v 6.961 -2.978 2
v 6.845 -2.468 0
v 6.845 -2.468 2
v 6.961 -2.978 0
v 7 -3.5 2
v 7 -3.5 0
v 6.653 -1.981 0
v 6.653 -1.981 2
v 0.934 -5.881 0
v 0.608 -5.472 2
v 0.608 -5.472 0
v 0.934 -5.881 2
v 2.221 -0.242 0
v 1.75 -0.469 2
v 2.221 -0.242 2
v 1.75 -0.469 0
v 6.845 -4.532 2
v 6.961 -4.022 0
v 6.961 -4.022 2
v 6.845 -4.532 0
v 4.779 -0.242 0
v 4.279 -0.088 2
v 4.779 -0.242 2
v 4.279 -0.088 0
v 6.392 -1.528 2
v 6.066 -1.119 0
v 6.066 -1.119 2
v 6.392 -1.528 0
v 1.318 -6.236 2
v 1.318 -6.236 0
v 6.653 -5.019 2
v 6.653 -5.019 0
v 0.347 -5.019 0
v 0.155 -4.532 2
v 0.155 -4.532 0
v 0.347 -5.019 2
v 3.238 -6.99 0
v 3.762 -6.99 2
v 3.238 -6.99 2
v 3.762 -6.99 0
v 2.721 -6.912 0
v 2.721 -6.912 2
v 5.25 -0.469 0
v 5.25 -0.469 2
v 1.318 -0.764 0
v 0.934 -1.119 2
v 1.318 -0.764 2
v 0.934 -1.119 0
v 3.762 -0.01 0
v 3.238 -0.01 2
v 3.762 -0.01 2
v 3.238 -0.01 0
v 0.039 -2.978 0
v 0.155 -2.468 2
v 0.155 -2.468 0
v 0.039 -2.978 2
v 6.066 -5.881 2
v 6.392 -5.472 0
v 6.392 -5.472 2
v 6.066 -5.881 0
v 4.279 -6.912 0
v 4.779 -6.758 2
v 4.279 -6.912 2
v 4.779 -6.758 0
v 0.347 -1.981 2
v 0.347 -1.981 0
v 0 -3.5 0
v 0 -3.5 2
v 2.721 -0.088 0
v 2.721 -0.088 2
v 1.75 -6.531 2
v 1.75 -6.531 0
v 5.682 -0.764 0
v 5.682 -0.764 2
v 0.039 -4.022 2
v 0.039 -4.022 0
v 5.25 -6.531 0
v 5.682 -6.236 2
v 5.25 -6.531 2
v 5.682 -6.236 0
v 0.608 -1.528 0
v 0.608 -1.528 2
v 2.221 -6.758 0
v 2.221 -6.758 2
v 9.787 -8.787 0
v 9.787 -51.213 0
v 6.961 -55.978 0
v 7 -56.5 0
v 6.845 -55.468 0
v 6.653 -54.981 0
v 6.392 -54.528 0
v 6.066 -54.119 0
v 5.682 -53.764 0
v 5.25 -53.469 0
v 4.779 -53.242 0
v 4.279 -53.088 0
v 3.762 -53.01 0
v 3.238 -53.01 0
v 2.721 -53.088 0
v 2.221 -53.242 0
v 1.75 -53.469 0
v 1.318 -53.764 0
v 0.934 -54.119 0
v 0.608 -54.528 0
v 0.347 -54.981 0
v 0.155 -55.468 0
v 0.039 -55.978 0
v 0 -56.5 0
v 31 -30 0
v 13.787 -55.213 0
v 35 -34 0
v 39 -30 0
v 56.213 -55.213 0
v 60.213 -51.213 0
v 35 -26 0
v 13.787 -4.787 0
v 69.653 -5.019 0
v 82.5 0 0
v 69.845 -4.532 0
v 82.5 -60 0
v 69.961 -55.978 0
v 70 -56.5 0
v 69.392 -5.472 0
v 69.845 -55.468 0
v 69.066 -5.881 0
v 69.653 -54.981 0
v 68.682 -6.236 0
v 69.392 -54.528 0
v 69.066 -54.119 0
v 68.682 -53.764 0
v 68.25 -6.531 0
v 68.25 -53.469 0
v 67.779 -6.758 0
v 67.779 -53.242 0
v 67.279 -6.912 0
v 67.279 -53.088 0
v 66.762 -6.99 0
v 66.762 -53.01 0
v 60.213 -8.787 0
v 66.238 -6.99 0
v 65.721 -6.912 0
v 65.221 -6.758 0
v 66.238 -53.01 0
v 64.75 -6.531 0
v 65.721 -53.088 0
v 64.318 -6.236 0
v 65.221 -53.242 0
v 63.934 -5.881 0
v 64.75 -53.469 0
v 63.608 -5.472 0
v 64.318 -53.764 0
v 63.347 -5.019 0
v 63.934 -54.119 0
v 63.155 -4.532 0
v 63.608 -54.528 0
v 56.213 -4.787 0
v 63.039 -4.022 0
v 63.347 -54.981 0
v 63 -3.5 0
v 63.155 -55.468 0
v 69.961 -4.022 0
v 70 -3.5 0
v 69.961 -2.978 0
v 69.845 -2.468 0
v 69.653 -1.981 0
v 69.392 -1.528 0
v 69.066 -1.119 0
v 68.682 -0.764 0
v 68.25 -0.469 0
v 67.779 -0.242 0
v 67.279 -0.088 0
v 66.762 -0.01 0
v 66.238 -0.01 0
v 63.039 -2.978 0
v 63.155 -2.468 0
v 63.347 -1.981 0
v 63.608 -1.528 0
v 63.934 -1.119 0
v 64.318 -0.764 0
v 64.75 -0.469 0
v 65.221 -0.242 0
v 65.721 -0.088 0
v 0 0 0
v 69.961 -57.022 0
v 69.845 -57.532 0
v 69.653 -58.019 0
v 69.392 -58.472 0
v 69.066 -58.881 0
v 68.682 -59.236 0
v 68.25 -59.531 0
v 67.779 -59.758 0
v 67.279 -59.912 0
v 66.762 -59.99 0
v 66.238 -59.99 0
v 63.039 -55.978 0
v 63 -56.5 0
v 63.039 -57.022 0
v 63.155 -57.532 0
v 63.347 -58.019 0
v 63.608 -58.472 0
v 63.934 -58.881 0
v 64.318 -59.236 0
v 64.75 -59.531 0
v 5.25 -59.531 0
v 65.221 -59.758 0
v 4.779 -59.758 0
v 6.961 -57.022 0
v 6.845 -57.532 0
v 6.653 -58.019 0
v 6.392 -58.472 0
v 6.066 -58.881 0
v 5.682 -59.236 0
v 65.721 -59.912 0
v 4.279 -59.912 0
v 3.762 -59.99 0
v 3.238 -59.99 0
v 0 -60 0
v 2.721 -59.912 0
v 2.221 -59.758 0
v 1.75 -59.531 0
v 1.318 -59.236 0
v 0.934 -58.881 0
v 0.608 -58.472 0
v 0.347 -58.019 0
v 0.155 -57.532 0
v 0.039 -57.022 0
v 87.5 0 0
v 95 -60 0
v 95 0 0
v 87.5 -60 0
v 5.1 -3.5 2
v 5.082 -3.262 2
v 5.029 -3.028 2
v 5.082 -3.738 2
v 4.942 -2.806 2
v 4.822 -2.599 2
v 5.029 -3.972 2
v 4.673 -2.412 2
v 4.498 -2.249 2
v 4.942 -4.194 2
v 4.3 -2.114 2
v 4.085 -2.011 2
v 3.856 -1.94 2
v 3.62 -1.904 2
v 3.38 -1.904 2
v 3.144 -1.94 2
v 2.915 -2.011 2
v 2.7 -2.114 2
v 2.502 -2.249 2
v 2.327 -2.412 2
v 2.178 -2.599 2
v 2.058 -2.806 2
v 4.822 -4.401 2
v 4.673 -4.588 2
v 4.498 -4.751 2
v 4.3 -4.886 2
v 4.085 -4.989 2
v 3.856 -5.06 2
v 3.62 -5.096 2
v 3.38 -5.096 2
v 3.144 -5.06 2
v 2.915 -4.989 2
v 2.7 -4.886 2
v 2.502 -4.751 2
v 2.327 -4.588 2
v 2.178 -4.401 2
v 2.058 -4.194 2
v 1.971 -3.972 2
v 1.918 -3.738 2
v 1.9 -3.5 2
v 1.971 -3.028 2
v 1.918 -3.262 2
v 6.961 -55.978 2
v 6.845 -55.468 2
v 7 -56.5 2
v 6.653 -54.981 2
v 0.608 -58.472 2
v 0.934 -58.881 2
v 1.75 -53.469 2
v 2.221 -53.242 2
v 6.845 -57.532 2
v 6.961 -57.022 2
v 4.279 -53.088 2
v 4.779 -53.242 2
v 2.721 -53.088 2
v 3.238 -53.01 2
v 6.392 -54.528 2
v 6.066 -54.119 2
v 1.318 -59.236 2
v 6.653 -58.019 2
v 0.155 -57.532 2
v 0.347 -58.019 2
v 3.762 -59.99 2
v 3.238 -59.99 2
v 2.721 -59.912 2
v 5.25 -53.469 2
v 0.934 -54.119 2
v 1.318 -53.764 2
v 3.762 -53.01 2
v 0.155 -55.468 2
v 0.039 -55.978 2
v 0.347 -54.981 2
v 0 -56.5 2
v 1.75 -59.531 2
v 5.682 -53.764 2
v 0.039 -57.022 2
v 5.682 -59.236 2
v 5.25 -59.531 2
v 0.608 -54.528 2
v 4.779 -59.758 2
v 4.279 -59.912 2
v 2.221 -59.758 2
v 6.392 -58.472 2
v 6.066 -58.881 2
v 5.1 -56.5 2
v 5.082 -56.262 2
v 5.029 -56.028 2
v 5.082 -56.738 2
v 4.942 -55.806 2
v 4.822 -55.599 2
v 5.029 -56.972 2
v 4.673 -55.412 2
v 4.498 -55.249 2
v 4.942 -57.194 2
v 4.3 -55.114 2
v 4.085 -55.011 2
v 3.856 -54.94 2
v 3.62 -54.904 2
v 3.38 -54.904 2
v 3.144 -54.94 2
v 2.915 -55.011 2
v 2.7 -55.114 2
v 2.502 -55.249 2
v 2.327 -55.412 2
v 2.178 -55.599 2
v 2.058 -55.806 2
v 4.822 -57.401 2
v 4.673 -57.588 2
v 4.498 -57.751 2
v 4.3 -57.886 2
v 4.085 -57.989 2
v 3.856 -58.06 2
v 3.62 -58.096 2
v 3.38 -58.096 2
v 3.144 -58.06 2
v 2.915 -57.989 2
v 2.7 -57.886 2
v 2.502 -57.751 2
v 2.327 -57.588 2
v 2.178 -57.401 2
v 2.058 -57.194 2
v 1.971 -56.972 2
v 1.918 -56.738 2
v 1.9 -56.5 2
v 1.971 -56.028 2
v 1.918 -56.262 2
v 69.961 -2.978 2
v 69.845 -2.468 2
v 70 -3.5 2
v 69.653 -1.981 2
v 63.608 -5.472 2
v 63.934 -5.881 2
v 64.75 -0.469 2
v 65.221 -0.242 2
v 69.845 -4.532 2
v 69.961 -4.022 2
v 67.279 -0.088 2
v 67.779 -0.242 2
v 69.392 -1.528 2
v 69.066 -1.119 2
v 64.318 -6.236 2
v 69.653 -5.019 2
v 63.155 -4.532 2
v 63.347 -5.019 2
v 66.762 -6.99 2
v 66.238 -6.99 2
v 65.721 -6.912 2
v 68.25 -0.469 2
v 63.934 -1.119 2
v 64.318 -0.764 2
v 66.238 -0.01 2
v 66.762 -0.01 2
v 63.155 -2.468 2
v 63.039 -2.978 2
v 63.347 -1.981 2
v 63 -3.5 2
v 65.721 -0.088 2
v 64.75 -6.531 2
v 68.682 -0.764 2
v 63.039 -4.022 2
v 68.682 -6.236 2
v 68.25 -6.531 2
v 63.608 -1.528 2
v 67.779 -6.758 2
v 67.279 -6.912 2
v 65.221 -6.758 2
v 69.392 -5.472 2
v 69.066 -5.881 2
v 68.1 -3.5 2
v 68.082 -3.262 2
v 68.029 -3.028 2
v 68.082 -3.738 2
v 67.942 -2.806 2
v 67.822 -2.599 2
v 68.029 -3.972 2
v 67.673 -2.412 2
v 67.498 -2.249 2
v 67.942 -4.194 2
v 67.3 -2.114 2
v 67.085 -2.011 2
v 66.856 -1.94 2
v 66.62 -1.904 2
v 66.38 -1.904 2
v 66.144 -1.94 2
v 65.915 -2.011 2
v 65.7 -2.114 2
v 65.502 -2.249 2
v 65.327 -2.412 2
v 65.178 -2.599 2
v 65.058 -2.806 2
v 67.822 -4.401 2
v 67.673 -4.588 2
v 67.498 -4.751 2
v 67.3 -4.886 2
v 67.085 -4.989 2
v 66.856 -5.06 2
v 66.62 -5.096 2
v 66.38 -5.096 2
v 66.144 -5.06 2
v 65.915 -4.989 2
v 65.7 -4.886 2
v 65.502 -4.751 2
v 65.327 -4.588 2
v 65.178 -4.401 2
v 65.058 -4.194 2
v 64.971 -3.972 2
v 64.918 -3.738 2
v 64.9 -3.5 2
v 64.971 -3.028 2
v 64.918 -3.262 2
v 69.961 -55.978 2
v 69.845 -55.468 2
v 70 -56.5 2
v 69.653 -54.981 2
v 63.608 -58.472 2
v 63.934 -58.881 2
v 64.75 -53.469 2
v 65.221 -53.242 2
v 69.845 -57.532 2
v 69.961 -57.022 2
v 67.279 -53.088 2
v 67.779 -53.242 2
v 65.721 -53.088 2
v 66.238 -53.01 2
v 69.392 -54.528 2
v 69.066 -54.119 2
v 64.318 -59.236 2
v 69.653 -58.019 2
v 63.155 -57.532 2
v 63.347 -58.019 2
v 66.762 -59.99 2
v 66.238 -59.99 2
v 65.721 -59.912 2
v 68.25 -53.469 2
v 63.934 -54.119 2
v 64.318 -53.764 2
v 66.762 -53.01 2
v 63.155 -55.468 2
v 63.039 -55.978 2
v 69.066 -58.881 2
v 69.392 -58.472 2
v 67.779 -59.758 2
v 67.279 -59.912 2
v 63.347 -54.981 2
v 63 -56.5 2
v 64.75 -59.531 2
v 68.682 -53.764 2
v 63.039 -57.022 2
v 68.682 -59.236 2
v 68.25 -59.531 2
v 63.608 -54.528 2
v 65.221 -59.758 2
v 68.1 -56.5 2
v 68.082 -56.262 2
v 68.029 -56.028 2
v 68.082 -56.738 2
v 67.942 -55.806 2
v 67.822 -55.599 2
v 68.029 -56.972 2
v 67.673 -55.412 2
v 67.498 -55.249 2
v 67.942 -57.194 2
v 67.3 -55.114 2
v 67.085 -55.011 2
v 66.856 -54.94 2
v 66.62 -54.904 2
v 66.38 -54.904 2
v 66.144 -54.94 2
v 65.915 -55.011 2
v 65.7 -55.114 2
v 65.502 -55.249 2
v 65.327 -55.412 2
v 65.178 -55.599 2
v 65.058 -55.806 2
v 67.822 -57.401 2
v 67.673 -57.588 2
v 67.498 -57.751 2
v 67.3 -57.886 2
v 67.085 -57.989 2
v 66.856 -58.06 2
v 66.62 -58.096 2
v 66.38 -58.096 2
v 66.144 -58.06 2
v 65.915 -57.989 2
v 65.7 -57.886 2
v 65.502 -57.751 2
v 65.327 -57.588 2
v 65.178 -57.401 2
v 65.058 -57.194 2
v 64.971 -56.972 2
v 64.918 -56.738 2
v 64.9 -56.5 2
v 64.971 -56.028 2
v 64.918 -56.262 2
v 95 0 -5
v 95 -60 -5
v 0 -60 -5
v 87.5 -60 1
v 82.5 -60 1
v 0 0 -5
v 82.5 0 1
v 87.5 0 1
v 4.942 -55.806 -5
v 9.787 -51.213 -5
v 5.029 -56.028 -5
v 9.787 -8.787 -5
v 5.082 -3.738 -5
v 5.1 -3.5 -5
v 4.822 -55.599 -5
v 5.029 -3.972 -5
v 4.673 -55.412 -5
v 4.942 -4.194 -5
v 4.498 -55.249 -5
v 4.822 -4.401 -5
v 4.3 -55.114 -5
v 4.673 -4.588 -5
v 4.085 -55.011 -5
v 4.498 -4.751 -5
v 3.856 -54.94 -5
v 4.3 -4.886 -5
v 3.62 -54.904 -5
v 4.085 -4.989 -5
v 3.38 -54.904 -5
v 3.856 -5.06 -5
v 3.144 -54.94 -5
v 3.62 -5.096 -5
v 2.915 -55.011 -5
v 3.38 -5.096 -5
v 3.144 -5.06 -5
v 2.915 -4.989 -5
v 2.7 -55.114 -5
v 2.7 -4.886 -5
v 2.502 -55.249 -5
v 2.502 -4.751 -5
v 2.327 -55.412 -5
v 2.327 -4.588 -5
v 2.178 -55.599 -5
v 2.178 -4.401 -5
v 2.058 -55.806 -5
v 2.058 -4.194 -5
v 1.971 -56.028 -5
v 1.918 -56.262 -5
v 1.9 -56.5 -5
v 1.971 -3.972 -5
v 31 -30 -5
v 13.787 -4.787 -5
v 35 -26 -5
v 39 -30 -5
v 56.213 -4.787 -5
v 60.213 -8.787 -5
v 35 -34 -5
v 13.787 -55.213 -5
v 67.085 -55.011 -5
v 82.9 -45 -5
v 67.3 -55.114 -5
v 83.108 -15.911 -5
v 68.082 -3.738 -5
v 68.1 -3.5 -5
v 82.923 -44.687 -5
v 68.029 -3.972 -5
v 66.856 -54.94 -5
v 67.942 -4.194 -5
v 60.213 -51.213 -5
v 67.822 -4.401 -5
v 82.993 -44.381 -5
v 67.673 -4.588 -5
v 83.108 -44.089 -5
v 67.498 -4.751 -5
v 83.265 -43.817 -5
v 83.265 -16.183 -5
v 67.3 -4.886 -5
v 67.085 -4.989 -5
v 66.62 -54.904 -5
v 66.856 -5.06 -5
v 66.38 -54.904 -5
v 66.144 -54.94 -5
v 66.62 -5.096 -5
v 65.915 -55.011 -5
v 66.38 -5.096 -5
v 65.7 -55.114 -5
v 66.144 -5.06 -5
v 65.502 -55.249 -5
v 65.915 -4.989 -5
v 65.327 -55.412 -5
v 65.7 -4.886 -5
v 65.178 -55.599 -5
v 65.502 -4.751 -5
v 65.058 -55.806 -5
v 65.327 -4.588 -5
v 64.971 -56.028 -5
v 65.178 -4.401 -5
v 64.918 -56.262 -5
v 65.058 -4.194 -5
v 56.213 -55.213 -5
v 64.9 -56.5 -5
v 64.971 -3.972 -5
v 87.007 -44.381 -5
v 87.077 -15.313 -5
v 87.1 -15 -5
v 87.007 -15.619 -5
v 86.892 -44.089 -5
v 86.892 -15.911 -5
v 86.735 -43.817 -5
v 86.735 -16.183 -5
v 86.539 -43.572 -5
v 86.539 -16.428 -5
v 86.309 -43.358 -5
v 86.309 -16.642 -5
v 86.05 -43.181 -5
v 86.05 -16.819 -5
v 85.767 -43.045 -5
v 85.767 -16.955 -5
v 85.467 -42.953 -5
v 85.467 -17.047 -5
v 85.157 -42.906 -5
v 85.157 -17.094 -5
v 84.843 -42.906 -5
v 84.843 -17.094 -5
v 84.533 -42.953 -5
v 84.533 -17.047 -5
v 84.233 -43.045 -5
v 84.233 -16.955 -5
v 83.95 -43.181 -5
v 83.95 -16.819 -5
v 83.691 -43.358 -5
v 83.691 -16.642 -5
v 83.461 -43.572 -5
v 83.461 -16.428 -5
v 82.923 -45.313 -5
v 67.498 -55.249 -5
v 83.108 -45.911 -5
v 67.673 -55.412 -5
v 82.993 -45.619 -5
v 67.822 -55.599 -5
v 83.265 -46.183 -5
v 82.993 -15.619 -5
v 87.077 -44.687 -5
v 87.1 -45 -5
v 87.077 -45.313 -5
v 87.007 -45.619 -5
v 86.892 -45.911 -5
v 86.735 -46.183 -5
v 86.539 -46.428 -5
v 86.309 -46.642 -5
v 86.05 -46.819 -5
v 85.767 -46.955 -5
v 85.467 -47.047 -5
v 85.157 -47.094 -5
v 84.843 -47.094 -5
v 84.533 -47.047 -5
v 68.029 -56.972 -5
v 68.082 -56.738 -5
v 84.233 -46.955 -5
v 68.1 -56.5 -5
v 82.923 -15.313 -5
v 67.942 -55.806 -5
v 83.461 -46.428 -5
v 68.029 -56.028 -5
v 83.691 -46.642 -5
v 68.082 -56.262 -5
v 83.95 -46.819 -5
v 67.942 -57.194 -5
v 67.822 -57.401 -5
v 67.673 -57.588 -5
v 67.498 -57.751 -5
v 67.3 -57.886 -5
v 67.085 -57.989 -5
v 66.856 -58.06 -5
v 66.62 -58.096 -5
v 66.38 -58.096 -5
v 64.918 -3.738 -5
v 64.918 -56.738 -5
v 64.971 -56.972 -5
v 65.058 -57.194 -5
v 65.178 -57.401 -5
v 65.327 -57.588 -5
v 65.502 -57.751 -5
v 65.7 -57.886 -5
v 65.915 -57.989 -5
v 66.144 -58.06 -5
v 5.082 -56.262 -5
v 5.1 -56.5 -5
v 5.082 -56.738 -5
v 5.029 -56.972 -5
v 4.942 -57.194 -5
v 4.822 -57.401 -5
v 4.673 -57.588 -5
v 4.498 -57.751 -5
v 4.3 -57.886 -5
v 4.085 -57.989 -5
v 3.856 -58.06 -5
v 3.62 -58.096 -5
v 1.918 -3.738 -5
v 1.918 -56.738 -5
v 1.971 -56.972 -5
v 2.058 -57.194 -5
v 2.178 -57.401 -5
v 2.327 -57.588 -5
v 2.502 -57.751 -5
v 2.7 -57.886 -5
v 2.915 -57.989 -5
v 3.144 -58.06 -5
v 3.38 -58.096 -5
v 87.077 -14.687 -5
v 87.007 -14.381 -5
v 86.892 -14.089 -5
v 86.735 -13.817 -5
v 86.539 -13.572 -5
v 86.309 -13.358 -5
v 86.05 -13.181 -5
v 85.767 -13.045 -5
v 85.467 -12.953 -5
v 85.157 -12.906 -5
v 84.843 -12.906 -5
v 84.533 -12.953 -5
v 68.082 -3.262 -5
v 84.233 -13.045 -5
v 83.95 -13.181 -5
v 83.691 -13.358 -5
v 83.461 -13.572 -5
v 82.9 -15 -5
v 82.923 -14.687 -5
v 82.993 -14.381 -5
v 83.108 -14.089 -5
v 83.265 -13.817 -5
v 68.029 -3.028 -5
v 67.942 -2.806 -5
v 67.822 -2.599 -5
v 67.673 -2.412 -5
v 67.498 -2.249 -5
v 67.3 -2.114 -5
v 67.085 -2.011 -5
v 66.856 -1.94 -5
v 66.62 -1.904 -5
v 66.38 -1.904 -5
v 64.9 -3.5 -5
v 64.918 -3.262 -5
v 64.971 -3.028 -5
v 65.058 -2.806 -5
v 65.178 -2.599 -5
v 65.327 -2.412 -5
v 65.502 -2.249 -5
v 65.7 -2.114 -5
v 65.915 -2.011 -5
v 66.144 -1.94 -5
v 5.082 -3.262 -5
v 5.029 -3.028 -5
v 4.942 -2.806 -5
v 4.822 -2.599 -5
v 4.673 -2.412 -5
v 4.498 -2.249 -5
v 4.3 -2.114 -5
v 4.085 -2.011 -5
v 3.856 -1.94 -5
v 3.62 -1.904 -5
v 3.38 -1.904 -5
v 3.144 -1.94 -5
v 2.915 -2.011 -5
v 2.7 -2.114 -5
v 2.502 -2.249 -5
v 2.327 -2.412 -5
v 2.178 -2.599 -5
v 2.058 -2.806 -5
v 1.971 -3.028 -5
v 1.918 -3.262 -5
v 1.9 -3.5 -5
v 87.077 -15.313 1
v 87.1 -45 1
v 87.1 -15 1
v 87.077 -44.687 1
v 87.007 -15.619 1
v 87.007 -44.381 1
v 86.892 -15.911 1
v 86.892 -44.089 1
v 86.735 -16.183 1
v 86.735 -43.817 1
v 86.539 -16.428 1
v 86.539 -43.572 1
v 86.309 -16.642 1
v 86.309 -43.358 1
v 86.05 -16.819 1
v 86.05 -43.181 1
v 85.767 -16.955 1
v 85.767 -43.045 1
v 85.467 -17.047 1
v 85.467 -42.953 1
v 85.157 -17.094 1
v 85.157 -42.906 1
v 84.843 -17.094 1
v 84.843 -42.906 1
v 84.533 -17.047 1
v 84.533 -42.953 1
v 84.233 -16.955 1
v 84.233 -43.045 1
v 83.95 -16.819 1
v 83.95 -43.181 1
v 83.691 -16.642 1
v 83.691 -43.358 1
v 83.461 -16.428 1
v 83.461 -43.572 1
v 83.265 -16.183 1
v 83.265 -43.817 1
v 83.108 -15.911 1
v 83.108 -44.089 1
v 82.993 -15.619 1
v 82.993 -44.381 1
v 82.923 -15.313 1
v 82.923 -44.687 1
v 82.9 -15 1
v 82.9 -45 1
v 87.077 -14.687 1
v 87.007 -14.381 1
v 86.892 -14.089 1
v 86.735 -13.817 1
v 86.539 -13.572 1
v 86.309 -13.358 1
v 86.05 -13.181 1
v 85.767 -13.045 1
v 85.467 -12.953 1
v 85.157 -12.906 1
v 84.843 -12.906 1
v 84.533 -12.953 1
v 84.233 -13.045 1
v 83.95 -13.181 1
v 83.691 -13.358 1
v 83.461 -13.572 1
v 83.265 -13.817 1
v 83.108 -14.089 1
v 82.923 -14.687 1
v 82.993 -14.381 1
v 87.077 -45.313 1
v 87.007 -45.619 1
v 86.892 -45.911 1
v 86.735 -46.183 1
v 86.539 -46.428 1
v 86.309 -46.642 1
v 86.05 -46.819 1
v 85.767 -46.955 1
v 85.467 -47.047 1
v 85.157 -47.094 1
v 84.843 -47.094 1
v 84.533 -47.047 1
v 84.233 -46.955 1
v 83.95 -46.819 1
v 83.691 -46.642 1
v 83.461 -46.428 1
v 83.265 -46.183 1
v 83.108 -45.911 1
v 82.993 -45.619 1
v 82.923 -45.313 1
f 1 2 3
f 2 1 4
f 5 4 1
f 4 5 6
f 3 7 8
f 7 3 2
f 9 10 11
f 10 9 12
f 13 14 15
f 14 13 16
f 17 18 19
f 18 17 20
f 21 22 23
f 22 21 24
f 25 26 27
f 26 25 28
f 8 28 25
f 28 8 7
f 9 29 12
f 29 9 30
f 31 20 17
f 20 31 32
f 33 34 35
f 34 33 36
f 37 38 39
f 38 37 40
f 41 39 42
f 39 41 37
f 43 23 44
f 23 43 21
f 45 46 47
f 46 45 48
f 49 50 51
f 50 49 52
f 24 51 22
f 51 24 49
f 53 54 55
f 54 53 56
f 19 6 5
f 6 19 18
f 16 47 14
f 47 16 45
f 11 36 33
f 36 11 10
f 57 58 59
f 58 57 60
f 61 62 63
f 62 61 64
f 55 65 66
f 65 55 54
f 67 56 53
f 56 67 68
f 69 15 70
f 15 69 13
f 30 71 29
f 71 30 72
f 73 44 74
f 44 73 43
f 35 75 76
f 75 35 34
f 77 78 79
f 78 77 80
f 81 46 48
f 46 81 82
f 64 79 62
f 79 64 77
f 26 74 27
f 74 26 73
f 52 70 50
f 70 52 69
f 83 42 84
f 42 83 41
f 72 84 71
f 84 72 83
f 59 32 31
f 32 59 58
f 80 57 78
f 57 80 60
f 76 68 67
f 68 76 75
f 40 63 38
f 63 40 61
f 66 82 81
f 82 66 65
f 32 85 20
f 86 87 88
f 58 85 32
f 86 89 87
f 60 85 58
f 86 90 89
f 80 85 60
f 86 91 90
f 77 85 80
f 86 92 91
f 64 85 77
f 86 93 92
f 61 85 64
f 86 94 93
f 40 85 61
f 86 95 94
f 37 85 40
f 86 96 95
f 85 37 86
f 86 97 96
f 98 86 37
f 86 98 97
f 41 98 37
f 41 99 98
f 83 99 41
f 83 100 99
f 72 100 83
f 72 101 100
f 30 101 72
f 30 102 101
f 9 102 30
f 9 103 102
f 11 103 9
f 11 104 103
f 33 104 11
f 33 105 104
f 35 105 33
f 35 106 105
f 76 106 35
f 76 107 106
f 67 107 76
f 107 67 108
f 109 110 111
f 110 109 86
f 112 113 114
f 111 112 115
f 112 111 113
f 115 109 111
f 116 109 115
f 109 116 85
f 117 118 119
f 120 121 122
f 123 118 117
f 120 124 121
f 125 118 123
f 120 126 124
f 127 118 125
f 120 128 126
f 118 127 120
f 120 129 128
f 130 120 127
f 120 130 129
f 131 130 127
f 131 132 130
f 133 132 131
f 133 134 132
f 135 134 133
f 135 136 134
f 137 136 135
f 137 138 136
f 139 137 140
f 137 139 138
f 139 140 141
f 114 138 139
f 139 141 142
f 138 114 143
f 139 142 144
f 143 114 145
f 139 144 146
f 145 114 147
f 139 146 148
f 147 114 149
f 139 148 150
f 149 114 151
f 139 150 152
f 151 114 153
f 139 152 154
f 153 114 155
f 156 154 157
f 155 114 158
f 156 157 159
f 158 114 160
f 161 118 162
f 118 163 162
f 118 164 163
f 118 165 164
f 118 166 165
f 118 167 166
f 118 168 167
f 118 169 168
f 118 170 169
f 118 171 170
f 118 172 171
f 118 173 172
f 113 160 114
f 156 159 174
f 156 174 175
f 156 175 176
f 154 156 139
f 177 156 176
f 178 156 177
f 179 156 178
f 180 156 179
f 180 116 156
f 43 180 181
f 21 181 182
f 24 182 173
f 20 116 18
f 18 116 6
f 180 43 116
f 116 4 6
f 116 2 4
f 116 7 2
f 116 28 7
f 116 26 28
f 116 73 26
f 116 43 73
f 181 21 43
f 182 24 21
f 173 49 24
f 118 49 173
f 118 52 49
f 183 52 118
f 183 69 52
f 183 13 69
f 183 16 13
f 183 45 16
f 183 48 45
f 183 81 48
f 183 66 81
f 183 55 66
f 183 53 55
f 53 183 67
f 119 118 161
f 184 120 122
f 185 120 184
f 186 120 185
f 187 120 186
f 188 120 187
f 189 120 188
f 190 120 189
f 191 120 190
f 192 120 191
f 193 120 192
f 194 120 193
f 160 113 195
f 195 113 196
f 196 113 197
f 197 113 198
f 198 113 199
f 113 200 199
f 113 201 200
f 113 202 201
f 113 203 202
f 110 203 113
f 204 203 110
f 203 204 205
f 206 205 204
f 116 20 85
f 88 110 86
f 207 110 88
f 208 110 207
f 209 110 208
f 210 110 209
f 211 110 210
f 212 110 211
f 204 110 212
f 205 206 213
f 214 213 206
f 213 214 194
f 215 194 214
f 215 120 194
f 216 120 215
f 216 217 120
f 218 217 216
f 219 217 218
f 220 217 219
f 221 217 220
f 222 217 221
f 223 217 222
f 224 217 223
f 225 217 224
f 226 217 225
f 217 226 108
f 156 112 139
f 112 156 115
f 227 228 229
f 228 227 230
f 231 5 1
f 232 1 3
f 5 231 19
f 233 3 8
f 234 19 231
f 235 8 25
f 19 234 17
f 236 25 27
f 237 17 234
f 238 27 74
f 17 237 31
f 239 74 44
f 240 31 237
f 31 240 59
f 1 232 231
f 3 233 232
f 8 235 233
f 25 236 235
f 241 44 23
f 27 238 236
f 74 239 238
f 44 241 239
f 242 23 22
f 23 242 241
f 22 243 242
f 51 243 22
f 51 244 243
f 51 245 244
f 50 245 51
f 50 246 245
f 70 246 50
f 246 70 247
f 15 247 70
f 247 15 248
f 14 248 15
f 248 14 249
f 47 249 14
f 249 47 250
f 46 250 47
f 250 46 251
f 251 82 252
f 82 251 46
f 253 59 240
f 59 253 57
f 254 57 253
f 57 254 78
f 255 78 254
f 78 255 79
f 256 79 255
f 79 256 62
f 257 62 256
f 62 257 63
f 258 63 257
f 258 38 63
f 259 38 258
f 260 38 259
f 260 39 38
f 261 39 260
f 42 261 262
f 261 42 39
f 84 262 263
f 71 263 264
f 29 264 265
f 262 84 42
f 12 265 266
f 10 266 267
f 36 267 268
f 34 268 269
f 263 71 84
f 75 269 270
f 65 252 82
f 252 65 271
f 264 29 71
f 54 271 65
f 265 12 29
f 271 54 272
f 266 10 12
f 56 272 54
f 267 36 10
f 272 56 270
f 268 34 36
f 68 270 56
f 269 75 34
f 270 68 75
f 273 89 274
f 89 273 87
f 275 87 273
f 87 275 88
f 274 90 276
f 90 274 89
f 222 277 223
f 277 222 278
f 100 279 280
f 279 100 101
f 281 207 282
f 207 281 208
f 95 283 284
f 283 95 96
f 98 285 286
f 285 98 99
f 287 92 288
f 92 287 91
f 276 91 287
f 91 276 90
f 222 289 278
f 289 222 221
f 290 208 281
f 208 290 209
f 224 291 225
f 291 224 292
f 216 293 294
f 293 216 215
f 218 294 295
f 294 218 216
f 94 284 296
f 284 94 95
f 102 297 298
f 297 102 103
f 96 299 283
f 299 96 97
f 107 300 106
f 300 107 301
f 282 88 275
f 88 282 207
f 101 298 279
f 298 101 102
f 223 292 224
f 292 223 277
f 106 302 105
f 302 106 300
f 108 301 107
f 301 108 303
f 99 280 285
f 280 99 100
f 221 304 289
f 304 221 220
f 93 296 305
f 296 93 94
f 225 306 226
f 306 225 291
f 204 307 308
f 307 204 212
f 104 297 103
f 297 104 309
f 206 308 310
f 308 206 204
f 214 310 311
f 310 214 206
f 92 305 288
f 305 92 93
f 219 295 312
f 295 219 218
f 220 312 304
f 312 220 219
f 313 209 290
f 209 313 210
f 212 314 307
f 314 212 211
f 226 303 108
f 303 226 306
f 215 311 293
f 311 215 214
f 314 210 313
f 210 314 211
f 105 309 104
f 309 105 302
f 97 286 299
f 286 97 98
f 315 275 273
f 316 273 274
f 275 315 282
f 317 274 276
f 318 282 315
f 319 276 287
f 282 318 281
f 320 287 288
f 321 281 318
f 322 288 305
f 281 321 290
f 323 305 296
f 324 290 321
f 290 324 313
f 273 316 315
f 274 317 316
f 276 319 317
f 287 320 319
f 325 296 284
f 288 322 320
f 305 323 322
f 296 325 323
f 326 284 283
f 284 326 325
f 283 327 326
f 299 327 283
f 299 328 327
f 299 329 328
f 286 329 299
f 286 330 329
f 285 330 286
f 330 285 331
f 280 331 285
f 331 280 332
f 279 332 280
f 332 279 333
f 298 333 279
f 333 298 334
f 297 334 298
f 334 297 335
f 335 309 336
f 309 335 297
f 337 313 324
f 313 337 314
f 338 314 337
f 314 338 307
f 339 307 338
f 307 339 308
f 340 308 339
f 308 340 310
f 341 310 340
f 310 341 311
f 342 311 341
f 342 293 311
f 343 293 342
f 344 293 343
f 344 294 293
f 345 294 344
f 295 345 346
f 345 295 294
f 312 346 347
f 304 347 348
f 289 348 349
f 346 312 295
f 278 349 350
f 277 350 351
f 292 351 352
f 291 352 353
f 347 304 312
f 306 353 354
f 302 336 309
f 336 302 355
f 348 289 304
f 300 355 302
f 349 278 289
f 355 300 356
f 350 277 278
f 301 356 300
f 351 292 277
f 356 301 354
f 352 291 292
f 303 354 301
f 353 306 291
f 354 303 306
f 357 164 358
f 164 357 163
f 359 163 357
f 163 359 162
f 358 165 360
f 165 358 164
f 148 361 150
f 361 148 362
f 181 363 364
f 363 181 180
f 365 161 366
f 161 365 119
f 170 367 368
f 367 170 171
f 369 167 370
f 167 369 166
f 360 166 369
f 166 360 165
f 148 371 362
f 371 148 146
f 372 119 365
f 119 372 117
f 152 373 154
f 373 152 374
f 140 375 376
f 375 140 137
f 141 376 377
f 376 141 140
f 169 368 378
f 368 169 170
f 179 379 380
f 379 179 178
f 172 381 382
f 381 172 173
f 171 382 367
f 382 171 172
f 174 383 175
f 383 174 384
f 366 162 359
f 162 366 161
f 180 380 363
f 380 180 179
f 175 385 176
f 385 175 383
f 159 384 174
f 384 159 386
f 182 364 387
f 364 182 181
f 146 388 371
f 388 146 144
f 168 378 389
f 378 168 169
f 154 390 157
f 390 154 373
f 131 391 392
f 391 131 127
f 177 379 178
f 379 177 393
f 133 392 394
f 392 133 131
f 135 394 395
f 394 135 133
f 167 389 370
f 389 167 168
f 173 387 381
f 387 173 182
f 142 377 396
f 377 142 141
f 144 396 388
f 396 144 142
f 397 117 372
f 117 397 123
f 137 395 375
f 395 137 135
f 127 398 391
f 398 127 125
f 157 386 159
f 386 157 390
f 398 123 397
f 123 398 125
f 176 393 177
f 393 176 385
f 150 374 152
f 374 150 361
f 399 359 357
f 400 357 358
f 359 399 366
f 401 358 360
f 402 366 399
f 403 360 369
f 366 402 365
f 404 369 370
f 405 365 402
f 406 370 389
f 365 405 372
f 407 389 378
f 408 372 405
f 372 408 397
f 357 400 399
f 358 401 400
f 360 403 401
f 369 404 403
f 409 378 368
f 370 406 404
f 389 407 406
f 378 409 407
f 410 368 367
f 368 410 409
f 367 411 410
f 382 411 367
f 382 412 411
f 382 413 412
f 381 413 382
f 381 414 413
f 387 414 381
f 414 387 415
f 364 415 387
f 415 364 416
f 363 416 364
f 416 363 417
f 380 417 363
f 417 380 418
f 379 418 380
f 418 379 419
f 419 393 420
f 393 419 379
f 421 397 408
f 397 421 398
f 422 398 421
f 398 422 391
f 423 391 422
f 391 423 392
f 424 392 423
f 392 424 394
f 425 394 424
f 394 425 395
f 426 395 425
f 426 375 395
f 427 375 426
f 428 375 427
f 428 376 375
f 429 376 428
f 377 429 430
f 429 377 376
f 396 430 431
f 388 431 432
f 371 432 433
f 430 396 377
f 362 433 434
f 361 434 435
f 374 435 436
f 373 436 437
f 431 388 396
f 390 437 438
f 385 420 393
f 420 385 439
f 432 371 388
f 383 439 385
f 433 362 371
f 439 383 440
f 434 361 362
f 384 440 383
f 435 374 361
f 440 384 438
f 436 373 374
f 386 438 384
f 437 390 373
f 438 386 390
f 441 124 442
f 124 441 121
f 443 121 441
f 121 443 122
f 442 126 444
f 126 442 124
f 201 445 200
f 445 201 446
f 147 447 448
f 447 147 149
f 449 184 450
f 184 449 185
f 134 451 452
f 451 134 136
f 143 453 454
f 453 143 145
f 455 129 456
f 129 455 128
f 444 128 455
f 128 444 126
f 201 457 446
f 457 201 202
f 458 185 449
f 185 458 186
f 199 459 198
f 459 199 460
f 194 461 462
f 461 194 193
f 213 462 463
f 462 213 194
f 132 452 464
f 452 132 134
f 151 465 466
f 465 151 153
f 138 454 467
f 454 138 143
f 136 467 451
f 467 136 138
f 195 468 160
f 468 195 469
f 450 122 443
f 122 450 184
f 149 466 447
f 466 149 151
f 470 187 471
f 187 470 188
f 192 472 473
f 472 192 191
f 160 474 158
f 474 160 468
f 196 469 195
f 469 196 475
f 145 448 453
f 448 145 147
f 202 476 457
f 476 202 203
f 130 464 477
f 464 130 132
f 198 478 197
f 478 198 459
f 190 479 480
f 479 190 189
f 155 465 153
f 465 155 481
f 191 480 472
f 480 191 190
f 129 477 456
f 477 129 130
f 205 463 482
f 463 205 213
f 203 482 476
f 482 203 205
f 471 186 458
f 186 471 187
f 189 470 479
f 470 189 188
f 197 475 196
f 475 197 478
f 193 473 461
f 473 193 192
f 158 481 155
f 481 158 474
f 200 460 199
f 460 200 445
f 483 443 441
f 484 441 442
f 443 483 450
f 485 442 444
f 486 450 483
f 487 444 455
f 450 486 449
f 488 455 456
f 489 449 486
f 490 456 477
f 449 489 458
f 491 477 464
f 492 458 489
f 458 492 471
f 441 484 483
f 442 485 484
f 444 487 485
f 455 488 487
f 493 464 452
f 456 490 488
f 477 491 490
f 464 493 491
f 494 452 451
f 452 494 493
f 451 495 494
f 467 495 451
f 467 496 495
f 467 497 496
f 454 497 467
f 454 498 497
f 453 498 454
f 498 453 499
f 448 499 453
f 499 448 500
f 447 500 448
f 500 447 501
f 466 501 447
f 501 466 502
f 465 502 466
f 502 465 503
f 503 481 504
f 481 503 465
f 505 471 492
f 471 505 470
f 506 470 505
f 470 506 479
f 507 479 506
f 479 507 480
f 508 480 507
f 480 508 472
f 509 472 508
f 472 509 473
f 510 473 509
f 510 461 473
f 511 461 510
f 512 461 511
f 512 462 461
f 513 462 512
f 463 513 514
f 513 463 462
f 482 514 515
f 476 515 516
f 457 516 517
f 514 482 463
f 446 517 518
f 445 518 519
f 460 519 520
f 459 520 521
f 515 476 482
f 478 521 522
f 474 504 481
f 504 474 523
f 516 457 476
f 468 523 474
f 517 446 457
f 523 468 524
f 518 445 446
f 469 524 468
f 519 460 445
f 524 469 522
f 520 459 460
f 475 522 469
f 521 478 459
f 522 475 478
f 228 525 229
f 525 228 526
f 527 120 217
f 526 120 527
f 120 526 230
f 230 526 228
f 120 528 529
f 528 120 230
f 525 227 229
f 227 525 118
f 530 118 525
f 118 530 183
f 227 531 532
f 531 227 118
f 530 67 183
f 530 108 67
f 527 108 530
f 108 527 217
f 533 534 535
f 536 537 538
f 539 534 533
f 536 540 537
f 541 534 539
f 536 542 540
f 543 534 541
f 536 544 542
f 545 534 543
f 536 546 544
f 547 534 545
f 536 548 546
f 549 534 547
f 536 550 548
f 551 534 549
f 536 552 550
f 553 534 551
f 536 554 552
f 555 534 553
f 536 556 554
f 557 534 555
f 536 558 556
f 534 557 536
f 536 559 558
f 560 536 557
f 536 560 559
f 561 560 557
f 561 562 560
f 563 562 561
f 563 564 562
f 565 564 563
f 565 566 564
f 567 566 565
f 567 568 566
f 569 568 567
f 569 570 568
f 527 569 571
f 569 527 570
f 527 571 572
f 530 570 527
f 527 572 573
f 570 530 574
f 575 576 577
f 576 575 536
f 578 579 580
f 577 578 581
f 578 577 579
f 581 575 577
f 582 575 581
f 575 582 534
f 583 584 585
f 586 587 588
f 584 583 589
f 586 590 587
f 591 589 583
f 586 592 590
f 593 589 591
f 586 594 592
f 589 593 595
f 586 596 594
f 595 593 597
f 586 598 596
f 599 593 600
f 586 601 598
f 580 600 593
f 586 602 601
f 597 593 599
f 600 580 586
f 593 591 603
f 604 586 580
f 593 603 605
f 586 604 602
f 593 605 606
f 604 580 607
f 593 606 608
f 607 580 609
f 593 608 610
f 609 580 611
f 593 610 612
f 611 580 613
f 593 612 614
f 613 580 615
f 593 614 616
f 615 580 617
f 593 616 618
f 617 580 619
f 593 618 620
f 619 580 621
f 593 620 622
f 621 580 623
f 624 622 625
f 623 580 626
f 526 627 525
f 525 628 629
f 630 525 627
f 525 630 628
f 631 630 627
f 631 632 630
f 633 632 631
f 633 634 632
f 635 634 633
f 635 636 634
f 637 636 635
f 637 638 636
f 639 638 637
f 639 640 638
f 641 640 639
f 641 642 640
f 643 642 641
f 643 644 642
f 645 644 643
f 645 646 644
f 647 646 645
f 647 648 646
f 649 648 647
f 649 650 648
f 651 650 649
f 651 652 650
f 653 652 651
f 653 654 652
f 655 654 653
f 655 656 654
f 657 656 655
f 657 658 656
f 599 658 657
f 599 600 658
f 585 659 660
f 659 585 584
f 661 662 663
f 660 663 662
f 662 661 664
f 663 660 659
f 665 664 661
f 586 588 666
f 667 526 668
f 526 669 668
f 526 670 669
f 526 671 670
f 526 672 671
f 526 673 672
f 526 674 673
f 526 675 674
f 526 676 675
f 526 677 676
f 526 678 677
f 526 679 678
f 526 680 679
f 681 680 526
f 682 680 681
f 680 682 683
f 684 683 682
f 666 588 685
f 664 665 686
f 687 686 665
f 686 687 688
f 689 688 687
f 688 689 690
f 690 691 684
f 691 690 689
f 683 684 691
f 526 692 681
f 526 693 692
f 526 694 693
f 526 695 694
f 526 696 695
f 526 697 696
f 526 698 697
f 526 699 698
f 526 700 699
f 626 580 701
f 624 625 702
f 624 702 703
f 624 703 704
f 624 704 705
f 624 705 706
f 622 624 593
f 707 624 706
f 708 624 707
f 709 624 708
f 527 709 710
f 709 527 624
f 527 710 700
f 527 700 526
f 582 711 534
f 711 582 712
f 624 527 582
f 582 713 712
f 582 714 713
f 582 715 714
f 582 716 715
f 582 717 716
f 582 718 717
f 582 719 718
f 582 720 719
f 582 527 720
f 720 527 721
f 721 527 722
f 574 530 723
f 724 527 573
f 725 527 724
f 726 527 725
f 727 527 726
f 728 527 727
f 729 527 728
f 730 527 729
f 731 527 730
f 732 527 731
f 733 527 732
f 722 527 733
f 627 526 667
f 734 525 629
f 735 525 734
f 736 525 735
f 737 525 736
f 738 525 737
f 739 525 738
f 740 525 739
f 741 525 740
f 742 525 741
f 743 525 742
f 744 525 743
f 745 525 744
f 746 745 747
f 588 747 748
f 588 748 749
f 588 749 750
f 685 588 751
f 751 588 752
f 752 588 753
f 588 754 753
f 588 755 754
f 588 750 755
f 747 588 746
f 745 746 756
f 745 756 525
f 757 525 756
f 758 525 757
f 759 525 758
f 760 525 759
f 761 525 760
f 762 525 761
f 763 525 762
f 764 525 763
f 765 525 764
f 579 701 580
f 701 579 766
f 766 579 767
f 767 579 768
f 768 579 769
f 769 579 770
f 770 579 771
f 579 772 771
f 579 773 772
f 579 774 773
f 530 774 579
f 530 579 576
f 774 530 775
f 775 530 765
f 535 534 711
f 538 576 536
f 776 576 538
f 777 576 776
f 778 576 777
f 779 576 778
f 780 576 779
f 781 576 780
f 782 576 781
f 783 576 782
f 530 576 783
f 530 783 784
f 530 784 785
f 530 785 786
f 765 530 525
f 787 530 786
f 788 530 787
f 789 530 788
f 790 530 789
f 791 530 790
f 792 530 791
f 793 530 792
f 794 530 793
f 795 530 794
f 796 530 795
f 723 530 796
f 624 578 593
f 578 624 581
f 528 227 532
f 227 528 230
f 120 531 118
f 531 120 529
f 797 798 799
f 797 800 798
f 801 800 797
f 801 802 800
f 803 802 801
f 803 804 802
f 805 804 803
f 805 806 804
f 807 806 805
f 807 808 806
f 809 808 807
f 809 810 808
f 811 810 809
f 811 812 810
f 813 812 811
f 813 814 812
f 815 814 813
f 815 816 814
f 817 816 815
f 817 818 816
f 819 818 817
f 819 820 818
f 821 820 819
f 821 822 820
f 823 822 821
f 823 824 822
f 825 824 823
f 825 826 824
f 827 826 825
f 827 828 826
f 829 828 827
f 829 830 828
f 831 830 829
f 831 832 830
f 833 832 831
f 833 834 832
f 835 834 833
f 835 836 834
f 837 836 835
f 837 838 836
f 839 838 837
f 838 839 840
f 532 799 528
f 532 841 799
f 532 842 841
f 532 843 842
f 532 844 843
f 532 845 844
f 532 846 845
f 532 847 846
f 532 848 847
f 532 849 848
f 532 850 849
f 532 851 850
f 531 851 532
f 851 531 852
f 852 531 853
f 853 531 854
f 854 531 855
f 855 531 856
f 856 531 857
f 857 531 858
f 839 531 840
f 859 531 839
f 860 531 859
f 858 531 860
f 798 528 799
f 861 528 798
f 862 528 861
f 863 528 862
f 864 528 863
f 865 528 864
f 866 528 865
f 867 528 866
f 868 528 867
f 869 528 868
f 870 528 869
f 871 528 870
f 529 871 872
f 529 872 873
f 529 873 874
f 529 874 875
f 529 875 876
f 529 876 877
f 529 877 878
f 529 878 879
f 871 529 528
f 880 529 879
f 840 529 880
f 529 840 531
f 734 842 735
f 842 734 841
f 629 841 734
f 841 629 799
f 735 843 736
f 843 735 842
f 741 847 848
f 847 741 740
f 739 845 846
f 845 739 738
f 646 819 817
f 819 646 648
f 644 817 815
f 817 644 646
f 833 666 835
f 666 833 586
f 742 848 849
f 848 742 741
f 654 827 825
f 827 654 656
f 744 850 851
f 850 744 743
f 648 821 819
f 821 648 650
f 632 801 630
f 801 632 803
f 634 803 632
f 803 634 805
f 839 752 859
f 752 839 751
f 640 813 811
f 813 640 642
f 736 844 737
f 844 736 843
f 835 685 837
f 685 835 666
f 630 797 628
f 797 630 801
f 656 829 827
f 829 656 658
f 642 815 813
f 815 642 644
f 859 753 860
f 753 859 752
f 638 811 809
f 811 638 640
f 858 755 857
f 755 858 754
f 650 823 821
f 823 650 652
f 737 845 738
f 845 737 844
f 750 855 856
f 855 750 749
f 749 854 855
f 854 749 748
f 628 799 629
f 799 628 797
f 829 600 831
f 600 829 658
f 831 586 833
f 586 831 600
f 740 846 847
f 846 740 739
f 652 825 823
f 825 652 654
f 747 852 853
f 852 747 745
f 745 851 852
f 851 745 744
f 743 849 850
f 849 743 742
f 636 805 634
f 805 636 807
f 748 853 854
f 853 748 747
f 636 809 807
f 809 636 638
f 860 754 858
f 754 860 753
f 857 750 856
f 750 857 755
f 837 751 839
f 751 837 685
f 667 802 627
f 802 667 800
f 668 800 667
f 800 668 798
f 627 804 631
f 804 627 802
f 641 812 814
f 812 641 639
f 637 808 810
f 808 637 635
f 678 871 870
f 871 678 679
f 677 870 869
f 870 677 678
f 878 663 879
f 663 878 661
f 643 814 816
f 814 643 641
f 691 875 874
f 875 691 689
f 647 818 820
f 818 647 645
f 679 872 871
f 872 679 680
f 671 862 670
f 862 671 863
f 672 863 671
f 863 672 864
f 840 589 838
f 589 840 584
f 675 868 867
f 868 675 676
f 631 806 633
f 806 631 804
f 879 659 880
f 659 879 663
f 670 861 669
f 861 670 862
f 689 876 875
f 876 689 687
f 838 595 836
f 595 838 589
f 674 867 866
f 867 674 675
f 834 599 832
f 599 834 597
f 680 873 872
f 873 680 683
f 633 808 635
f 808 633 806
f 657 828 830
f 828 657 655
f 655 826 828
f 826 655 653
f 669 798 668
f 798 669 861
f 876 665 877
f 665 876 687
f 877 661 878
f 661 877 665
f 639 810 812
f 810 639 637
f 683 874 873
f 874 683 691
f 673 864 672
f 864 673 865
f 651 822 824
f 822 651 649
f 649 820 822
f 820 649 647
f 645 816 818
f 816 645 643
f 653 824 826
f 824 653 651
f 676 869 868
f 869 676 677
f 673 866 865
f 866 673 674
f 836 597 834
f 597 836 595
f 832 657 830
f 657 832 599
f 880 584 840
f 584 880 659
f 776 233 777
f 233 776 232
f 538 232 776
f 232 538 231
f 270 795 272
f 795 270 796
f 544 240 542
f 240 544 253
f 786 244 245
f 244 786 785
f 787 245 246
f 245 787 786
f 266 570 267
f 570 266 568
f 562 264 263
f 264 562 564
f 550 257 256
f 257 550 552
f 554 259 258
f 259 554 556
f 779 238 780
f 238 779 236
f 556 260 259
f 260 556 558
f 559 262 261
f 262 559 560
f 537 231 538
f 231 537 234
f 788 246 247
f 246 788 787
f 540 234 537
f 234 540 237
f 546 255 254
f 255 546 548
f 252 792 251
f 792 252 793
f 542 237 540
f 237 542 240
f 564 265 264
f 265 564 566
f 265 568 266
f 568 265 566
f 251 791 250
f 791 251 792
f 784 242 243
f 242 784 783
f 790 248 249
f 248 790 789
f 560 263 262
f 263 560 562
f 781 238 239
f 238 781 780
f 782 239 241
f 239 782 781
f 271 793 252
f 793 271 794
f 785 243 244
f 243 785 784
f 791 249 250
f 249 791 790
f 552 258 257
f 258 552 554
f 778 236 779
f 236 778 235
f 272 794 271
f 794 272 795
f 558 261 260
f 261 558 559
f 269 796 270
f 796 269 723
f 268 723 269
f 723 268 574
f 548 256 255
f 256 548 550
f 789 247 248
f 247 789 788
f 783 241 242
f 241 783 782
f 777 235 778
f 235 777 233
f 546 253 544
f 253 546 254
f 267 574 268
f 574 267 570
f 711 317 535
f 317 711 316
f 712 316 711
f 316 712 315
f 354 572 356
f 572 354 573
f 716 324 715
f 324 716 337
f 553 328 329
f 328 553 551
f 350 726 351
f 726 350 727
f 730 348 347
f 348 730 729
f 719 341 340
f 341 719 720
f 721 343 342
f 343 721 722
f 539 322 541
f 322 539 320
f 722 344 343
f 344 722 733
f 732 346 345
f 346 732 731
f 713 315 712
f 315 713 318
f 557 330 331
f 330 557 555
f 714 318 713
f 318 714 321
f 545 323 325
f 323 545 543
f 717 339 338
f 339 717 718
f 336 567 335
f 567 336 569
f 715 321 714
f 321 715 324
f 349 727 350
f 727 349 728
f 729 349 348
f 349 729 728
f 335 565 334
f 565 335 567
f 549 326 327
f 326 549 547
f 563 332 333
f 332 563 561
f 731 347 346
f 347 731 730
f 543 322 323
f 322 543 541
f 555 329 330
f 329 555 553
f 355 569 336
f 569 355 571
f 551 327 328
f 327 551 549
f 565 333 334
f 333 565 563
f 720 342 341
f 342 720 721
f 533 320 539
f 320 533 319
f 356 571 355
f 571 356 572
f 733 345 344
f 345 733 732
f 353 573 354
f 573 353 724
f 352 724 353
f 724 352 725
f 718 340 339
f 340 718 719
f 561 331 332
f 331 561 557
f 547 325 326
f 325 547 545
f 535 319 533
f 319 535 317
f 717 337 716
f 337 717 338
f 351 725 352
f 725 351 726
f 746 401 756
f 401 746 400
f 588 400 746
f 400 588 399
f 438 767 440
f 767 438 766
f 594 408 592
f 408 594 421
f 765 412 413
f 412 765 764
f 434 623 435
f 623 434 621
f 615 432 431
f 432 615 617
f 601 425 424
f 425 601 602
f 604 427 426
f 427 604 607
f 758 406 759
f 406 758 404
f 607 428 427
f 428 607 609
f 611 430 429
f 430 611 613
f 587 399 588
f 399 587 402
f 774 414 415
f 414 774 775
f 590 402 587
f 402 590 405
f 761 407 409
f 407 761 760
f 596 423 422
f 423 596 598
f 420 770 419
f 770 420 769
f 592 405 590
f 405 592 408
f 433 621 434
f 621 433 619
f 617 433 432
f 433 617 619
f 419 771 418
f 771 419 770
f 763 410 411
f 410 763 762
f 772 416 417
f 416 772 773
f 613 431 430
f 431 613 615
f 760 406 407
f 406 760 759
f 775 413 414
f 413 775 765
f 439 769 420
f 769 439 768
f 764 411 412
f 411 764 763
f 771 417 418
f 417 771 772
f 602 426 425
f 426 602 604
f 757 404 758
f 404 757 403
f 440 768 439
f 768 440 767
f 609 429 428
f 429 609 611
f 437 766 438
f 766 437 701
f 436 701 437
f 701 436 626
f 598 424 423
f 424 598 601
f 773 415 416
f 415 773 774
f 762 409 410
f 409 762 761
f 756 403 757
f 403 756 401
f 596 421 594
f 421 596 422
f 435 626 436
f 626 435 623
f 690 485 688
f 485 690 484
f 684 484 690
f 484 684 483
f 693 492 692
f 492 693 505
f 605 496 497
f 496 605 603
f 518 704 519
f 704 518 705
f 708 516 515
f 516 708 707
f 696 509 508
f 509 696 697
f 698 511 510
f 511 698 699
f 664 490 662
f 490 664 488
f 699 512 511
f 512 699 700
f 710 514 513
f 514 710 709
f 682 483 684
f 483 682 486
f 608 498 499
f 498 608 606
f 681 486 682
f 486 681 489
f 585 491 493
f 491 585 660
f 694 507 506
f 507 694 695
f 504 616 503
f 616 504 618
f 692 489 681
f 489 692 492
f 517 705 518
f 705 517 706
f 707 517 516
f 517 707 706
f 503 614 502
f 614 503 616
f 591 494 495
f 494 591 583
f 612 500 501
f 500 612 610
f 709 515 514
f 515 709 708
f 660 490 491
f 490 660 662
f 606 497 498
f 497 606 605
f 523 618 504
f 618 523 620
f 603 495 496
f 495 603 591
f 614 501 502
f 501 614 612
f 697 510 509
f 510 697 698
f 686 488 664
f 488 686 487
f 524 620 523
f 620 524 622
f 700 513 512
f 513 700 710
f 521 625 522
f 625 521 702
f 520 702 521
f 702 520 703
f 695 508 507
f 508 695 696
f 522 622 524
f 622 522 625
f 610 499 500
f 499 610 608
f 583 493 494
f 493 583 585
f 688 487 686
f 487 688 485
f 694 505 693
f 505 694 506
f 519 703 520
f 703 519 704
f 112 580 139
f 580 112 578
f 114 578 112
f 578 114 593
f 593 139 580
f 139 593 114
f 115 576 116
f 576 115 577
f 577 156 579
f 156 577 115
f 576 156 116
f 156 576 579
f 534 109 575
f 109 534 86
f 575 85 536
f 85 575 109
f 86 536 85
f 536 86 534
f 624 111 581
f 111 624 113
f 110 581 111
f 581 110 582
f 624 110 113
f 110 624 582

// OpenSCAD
mosfet_width = 70;
mosfet_height = 60;
mosfet_depth = 2;

mosfet_holes_x = 63;
mosfet_holes_y = 53;
mosfet_dia = 3.2;

wall = 5.0;
mosfet_wall_dist = 5.0;
mosfet_mount_dist = 2.0;
mount_dia = 4.2;

cutout_len = 30;
cutout_dist = 4;

$fn = 42;

module prism(l, w, h) {
    polyhedron(
        points = [[0,0,0], [l,0,0], [l,w,0], [0,w,0], [0,w,h], [l,w,h]],
        faces = [[0,1,2,3],[5,4,3,2],[0,4,5,1],[0,3,4],[5,2,1]]
    );
}

module mosfet() {
    cube([mosfet_width, mosfet_height, mosfet_depth]);
    
    for (x = [-1, 1])
    for (y = [-1, 1])
    translate([mosfet_width / 2 + x * mosfet_holes_x / 2, mosfet_height / 2 + y * mosfet_holes_y / 2, -mosfet_mount_dist - wall - 1])
    cylinder(d = mosfet_dia - 0.2, h = mosfet_mount_dist + wall + 1);
}

module mount() {
    translate([0, -wall, 0])
    difference() {
        union() {
            cube([mosfet_width + mosfet_wall_dist + 20, wall, mosfet_height]);
            
            translate([mosfet_width + mosfet_wall_dist + 7.5, wall, 0])
            cube([5, 1, mosfet_height]);
            
            for (x = [-1, 1])
            for (y = [-1, 1])
            translate([mosfet_width / 2 + x * mosfet_holes_x / 2, wall, mosfet_height / 2 + y * mosfet_holes_y / 2])
            rotate([-90, 0, 0])
            cylinder(d = 7, h = mosfet_mount_dist);
        }
        
        for (i = [-15, 15])
        translate([mosfet_width + mosfet_wall_dist + 10, -1, mosfet_height / 2 + i])
        rotate([-90, 0, 0])
        cylinder(d = mount_dia, h = wall + 3);
        
        for (x = [-1, 1])
        for (y = [-1, 1])
        translate([mosfet_width / 2 + x * mosfet_holes_x / 2, -1, mosfet_height / 2 + y * mosfet_holes_y / 2])
        rotate([-90, 0, 0])
        cylinder(d = mosfet_dia, h = wall + mosfet_mount_dist + 2);
        
        for (i = [0, 1, 2, 3])
        translate([mosfet_width / 2, 0, mosfet_height / 2])
        rotate([0, 90 * i, 0])
        translate([cutout_len * sqrt(2) / 2 + cutout_dist, -1, -cutout_len * sqrt(2) / 2])
        rotate([45, 0, 90])
        prism(wall + 2, cutout_len, cutout_len);
    }
}

module assembly() {
    %translate([0, mosfet_mount_dist, mosfet_height])
    rotate([-90, 0, 0])
    mosfet();
    
    mount();
}

rotate([90, 0, 0])
assembly();
